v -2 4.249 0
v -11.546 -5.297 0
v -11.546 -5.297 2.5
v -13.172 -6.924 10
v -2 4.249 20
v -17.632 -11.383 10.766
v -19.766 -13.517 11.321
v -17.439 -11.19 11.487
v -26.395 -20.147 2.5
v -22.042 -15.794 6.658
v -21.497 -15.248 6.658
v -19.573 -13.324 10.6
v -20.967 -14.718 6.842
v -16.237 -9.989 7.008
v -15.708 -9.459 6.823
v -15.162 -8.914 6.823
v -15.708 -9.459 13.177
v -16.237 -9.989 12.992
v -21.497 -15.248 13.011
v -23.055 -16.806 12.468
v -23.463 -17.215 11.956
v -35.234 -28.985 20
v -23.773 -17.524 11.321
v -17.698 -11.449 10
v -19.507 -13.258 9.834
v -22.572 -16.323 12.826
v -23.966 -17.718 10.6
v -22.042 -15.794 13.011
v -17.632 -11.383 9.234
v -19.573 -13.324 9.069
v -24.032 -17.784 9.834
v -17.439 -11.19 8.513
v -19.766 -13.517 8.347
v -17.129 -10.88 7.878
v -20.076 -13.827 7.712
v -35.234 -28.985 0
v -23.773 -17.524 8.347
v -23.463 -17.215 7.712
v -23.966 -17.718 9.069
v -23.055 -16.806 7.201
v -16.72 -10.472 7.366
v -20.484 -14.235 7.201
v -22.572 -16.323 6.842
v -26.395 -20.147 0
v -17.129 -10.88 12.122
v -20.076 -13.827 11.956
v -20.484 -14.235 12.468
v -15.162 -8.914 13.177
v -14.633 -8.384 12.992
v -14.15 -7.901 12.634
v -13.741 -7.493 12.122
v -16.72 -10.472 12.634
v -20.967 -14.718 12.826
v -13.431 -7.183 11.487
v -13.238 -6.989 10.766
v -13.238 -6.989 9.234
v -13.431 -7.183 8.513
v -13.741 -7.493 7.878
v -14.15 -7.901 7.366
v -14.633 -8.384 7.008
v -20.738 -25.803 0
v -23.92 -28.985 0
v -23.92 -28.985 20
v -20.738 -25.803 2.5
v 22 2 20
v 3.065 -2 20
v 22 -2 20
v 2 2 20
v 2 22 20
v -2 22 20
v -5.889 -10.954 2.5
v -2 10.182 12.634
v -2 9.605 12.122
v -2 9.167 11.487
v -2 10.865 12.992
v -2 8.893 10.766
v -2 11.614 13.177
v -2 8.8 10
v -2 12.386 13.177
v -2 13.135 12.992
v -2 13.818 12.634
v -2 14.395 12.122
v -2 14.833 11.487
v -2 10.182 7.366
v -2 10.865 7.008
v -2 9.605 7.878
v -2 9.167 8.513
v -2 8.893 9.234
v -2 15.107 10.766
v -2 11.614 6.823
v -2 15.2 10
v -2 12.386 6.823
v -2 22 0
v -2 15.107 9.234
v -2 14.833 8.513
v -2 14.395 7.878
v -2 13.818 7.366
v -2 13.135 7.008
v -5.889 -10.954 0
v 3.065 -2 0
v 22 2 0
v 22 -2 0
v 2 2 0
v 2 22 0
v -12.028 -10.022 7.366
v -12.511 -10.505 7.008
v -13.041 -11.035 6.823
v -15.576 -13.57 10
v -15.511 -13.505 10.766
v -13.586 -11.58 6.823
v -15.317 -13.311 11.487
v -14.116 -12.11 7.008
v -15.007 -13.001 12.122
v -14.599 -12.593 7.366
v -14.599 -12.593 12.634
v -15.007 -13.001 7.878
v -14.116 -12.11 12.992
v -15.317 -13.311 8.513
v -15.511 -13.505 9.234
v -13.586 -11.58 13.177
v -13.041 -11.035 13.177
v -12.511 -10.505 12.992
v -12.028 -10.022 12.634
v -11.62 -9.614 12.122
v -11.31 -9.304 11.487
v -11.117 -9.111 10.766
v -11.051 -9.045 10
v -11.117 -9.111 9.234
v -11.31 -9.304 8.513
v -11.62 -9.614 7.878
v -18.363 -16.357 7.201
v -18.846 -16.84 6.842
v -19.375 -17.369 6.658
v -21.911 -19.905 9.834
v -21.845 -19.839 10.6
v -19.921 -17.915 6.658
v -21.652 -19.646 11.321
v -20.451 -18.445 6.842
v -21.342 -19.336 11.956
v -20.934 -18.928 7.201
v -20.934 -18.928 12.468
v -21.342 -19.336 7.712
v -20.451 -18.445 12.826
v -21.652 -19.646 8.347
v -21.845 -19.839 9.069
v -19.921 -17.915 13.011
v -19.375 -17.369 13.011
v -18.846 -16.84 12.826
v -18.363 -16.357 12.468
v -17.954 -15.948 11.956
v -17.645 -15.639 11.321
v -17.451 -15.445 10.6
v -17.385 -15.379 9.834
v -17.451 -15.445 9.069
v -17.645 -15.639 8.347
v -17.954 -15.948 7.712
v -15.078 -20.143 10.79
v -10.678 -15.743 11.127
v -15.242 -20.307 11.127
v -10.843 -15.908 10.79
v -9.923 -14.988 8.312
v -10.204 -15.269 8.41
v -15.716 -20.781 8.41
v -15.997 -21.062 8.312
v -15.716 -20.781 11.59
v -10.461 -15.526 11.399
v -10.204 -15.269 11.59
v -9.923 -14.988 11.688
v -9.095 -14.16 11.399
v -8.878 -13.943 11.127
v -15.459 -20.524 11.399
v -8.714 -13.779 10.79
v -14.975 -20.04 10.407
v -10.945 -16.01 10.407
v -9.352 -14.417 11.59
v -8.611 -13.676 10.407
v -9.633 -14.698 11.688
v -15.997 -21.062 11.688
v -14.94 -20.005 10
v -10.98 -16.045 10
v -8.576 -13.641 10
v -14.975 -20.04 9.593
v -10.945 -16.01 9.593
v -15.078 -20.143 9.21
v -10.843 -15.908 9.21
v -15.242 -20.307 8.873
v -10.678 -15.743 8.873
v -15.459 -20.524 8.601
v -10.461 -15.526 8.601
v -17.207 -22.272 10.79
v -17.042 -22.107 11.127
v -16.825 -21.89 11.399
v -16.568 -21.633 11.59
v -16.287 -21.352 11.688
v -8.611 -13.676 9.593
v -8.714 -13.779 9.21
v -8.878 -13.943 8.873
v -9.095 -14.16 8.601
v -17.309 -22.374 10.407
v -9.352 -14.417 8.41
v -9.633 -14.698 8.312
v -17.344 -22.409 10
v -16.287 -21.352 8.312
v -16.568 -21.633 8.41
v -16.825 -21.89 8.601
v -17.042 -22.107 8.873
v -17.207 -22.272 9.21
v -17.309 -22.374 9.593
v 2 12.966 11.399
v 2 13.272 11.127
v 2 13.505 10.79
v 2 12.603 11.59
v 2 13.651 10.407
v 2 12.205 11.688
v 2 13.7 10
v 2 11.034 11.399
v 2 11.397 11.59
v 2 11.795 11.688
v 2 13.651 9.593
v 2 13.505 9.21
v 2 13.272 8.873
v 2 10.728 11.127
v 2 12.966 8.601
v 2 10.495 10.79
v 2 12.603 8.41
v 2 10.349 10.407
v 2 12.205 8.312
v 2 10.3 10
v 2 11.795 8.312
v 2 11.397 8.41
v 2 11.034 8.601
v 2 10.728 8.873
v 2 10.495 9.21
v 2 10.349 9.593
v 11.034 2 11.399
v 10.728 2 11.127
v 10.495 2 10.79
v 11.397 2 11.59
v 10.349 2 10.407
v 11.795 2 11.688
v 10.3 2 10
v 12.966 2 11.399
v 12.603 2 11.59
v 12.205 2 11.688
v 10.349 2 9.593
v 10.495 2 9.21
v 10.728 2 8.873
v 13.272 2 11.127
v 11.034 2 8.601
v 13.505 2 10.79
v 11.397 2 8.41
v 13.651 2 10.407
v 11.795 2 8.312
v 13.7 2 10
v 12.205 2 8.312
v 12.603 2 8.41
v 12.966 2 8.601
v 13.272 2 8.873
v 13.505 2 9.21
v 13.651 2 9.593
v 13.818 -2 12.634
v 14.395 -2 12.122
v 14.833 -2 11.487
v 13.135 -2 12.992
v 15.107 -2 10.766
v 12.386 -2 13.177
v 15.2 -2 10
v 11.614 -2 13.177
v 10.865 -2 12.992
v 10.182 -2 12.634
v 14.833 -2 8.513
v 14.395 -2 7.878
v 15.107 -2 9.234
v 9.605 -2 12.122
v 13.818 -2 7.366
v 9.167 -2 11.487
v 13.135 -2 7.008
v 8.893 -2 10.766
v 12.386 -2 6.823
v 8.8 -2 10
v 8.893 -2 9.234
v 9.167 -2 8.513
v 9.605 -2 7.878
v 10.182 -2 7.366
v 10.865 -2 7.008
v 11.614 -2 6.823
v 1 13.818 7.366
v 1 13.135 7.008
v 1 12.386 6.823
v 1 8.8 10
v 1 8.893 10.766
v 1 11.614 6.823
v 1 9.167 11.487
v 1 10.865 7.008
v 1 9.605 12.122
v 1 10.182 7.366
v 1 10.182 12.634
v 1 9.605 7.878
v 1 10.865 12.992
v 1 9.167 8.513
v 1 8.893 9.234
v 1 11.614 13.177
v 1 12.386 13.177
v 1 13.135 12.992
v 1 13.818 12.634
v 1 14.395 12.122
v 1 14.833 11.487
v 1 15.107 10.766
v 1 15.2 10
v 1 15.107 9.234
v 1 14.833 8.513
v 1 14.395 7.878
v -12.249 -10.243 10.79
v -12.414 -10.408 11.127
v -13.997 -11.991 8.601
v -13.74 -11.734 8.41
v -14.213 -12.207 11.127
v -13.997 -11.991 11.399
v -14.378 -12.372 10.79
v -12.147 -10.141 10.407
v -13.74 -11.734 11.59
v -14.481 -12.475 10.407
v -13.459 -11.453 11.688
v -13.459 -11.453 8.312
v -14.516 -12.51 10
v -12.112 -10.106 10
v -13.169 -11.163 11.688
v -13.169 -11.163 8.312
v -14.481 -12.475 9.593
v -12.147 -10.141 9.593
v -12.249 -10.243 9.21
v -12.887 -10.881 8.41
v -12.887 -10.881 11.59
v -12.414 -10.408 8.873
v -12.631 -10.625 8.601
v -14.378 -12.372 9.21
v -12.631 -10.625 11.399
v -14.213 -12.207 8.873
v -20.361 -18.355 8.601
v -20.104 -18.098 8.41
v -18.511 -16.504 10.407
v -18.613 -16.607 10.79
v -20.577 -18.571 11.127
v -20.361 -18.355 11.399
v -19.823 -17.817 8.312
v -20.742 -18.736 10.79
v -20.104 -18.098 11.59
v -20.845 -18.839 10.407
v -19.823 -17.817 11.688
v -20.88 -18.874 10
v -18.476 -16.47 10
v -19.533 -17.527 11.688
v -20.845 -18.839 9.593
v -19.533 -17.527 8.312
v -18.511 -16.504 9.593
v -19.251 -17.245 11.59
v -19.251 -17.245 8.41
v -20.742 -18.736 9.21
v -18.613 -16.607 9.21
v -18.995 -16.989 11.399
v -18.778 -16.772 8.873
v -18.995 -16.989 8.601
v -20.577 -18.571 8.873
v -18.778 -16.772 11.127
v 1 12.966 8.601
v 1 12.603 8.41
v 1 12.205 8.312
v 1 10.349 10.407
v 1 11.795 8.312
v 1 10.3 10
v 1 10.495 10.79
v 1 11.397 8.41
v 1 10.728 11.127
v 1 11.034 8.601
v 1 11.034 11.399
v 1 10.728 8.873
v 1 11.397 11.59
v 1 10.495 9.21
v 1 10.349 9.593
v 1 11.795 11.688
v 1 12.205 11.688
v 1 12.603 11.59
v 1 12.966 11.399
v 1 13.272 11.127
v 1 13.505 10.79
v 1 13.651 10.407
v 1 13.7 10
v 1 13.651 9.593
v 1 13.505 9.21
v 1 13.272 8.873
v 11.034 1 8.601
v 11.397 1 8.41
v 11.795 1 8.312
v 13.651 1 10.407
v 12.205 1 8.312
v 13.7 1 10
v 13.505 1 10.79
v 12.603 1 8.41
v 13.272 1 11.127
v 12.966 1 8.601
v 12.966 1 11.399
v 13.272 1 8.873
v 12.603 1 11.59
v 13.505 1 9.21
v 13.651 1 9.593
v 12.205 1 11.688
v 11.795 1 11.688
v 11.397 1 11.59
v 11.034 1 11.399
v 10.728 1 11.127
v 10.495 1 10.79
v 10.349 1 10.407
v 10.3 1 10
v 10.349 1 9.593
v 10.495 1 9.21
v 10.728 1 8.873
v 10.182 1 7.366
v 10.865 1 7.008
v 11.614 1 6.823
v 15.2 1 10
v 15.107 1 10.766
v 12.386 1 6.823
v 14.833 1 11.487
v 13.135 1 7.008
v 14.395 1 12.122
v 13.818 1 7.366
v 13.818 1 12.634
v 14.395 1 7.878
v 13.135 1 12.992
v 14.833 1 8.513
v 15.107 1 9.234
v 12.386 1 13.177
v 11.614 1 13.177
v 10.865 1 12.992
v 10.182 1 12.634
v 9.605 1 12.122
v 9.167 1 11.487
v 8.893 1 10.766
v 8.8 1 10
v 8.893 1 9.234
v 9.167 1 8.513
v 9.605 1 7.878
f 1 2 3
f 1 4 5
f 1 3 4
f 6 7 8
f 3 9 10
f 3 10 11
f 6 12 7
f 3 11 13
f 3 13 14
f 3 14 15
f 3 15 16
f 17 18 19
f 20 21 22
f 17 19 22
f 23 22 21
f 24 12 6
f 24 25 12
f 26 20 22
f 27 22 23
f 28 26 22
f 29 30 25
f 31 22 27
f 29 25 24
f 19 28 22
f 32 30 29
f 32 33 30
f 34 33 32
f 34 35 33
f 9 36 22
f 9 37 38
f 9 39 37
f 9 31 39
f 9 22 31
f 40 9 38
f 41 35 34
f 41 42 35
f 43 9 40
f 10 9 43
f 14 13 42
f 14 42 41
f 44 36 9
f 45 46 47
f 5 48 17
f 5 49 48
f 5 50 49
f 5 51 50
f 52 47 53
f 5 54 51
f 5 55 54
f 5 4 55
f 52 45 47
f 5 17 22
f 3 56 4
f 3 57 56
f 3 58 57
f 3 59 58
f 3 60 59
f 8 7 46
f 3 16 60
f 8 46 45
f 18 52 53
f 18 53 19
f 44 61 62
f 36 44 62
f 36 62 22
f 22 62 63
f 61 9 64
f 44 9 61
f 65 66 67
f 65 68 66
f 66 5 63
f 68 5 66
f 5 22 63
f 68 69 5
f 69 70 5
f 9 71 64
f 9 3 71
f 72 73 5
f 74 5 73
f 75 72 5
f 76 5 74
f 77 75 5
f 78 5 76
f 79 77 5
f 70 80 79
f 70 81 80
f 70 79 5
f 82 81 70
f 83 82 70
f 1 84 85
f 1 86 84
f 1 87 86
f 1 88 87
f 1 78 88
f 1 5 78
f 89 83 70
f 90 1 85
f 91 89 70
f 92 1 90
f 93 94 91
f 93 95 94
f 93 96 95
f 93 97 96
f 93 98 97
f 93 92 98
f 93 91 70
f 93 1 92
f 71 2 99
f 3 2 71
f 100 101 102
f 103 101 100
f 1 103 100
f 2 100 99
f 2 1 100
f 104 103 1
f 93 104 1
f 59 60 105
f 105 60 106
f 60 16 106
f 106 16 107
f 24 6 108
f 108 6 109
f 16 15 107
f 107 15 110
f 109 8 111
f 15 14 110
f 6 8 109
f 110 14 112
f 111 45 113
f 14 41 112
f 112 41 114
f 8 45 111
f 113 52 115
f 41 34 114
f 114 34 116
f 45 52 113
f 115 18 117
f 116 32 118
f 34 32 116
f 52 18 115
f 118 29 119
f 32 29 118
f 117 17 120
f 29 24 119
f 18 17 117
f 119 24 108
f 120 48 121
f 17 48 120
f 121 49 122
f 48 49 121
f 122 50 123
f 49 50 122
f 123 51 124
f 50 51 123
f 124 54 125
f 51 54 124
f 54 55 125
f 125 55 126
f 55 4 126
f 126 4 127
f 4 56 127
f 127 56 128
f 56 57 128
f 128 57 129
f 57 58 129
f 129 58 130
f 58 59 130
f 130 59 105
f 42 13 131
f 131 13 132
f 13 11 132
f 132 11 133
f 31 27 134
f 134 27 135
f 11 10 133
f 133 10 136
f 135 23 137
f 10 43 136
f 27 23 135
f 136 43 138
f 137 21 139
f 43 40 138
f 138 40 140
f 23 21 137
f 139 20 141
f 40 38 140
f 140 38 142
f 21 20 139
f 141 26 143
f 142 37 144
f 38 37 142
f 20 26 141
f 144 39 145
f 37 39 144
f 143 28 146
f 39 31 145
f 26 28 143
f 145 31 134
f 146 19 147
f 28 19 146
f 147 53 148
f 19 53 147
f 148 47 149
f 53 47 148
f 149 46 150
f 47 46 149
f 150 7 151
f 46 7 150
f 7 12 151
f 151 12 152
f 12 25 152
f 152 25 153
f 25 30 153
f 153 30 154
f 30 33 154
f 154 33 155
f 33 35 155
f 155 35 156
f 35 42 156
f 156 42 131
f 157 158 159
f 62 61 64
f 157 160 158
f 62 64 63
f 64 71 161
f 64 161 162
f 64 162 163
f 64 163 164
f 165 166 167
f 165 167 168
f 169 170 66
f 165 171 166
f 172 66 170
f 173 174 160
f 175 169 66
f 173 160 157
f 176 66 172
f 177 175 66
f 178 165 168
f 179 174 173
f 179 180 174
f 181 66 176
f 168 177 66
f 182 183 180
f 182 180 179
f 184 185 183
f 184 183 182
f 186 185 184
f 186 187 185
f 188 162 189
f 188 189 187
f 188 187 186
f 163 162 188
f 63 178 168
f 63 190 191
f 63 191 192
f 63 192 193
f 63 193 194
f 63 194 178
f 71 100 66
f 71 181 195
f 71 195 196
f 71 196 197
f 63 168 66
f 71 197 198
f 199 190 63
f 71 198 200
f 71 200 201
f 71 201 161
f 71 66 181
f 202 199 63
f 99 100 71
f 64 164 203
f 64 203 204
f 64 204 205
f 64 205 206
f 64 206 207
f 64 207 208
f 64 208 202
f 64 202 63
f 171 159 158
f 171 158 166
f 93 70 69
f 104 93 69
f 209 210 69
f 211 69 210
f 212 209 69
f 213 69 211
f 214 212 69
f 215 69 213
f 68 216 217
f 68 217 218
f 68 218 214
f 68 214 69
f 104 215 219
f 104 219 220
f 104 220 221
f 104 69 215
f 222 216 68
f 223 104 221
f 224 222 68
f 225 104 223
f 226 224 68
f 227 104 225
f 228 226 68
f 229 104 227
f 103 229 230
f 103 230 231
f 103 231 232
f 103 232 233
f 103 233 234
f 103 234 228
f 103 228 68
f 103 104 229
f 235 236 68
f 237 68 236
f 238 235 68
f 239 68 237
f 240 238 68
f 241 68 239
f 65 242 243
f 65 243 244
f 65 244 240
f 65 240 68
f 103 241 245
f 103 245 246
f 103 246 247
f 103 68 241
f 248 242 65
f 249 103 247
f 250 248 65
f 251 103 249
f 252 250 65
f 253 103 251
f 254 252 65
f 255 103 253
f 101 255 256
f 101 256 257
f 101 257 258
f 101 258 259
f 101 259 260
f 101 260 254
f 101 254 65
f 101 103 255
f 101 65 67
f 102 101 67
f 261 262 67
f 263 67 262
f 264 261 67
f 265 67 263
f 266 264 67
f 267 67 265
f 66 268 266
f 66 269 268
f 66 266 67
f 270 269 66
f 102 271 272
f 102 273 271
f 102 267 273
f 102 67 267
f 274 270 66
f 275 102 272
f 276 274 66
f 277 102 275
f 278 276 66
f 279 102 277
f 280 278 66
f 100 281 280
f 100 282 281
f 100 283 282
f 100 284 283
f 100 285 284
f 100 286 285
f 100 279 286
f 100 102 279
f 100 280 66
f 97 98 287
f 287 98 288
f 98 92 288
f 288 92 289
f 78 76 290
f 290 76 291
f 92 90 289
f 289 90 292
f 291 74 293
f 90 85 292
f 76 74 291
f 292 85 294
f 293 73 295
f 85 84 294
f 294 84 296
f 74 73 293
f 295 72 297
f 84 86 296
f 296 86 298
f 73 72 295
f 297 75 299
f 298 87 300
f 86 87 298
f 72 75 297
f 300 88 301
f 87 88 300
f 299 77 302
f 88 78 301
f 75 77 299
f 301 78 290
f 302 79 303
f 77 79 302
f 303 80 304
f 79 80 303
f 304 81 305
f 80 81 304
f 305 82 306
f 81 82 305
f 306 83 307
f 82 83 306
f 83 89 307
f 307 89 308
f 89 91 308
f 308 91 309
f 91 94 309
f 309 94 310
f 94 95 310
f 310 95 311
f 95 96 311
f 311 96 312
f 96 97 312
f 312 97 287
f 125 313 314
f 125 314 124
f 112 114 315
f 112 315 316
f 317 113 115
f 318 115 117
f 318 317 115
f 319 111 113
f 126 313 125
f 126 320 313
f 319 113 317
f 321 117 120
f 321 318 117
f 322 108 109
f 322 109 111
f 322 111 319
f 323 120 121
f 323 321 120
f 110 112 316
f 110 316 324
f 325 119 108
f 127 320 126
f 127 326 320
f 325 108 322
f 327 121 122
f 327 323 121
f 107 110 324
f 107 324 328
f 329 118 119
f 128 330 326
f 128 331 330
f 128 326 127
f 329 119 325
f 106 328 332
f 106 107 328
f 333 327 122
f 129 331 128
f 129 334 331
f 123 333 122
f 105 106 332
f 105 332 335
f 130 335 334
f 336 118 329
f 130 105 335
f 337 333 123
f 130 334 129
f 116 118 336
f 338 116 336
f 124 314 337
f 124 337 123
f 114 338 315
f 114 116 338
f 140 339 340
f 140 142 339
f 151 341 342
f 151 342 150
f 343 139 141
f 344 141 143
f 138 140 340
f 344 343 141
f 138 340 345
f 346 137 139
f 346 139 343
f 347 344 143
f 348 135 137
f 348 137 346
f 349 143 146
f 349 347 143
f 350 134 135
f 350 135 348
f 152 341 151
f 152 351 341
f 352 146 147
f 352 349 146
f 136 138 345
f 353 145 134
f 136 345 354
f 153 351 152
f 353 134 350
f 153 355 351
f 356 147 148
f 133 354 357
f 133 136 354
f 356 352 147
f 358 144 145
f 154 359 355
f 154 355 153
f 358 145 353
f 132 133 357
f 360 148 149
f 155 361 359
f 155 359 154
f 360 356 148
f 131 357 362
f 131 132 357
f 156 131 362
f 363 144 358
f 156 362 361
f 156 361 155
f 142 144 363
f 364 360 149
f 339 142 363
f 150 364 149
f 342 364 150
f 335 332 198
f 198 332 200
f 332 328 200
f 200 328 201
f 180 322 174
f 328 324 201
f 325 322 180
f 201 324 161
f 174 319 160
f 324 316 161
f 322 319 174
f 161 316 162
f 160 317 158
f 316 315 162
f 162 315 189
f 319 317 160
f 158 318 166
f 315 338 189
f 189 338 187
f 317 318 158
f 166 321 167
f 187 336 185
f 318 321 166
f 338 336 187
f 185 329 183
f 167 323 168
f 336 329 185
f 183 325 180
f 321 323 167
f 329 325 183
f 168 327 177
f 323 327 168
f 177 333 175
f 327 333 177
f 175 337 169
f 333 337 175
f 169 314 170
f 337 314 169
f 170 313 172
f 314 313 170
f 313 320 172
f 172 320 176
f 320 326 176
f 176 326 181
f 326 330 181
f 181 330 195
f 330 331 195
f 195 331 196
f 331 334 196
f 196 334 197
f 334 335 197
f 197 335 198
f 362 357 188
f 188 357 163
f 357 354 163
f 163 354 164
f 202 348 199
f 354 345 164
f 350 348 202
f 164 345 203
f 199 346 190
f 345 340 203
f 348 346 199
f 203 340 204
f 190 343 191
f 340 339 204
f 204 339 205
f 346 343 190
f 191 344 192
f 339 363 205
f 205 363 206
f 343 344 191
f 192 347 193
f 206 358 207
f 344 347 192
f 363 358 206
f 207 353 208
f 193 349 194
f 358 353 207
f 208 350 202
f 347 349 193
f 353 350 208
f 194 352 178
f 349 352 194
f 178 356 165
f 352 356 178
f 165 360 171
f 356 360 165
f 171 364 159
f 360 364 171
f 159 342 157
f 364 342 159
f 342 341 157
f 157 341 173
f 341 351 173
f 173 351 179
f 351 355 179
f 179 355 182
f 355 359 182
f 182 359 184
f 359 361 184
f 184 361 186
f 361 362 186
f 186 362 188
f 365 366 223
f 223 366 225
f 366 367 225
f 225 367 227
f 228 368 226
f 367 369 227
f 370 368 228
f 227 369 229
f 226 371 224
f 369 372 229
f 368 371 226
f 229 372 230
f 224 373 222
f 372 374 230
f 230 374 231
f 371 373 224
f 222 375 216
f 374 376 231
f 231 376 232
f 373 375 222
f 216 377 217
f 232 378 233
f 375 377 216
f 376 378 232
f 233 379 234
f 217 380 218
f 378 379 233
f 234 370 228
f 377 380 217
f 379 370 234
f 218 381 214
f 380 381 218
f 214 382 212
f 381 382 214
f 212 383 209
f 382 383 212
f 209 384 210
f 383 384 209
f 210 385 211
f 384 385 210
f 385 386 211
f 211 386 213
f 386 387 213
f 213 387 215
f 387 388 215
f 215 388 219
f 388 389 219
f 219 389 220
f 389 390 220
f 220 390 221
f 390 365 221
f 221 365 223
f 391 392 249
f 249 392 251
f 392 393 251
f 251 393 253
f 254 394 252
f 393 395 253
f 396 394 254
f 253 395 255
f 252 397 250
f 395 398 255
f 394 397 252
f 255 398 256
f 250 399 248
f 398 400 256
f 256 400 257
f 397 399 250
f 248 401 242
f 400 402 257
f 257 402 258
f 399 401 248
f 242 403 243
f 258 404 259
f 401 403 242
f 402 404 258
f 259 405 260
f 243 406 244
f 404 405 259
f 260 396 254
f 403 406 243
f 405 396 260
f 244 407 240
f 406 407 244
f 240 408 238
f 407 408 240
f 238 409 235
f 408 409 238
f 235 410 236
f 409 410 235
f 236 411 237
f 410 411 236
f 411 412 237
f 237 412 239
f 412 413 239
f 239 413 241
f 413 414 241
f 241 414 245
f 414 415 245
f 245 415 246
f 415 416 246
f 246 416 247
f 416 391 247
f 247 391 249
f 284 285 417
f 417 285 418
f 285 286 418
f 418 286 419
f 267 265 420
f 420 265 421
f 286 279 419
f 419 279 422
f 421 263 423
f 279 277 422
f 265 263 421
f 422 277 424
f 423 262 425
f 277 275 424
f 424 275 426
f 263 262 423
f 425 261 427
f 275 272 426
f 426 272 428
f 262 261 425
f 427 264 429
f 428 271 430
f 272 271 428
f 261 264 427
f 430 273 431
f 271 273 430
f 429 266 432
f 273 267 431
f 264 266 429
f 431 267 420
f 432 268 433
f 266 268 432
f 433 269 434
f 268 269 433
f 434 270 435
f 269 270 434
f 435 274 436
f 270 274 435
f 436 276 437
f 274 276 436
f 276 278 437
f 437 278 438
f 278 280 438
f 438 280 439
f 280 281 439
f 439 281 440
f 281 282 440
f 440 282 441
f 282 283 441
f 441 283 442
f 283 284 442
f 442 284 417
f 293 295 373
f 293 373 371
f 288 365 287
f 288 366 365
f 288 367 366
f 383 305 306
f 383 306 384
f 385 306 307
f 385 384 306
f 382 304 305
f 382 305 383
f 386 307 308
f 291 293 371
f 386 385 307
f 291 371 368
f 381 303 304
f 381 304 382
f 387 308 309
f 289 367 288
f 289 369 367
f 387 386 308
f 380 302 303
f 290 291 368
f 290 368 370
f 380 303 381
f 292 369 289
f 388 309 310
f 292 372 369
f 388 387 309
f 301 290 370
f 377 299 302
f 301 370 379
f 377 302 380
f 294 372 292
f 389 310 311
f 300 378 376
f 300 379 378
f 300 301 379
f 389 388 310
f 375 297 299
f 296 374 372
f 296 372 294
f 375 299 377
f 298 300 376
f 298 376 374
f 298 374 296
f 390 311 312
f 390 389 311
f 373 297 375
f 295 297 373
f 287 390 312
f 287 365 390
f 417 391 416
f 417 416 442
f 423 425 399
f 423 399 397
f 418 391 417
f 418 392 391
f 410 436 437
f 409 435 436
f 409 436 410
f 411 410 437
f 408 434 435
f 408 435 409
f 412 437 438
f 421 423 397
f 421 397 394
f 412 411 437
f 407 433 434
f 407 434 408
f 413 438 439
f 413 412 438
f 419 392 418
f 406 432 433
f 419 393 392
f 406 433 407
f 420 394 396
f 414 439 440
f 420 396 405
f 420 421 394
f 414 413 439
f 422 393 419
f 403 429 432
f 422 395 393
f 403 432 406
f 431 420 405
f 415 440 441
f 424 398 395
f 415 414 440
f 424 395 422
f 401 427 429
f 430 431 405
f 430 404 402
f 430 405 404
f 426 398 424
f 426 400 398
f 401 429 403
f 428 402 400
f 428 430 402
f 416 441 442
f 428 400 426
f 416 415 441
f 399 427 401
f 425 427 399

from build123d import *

# Parameters (mm, degrees)
PAD_DEPTH       = 20
SKETCH001_R     = 1.7
POCKET_DEPTH    = 5
SKETCH002_R     = 1.7
POCKET001_DEPTH = 5
SKETCH003_R     = 1.7
SKETCH003_W     = 21
SKETCH003_H     = 2.5
POCKET002_DEPTH = 9
SKETCH004_R     = 3.2
POCKET003_DEPTH = 3
SKETCH005_R     = 3.2
POCKET004_DEPTH = 3
SKETCH006_R     = 3.2
POCKET005_DEPTH = 3


with BuildPart() as part:
    # Sketch → Pad (new body)
    with BuildSketch(Plane.XY):
        Polygon((-2, 22), (2, 22), (2, 2), (22, 2), (22, -2), (3.065041, -2), (-23.92031, -28.985351), (-35.234019, -28.985351), (-2, 4.248668), align=None)
    extrude(amount=PAD_DEPTH)

    # Sketch001 (on Face2 of Pad) → Pocket (cut)
    with BuildSketch(Plane(origin=(-2, 0, 0), x_dir=(0, -1, 0), z_dir=(-1, 0, 0))):
        with Locations((-12, 10)):
            Circle(SKETCH001_R)
    extrude(amount=-POCKET_DEPTH, mode=Mode.SUBTRACT)

    # Sketch002 (on Face12 of Pocket) → Pocket001 (cut)
    with BuildSketch(Plane.XZ.offset(2)):
        with Locations((12, 10)):
            Circle(SKETCH002_R)
    extrude(amount=-POCKET001_DEPTH, mode=Mode.SUBTRACT)

    # Sketch003 (on Face1 of Pocket001) → Pocket002 (cut)
    with BuildSketch(Plane(origin=(-3.124334, 3.124334, 0), x_dir=(-0.707107, -0.707107, 0), z_dir=(-0.707107, 0.707107, 0))):
        with Locations((17.409952, 10)):
            Circle(SKETCH003_R)
        with Locations((26.409952, 10)):
            Circle(SKETCH003_R)
        with Locations((22.409952, 1.25)):
            Rectangle(SKETCH003_W, SKETCH003_H)
    extrude(amount=-POCKET002_DEPTH, mode=Mode.SUBTRACT)

    # Sketch004 (on Face7 of Pocket002) → Pocket003 (cut)
    with BuildSketch(Plane(origin=(-2, 0, 0), x_dir=(0, -1, 0), z_dir=(-1, 0, 0))):
        with Locations((-12, 10)):
            Circle(SKETCH004_R)
    extrude(amount=-POCKET003_DEPTH, mode=Mode.SUBTRACT)

    # Sketch005 (on Face13 of Pocket003) → Pocket004 (cut)
    with BuildSketch(Plane.XZ.offset(2)):
        with Locations((12, 10)):
            Circle(SKETCH005_R)
    extrude(amount=-POCKET004_DEPTH, mode=Mode.SUBTRACT)

    # Sketch006 (on Face1 of Pocket004) → Pocket005 (cut)
    with BuildSketch(Plane(origin=(-3.124334, 3.124334, 0), x_dir=(-0.707107, -0.707107, 0), z_dir=(-0.707107, 0.707107, 0))):
        with Locations((17.409955, 10.000001)):
            Circle(SKETCH006_R)
        with Locations((26.368249, 9.834363)):
            Circle(SKETCH006_R)
    extrude(amount=-POCKET005_DEPTH, mode=Mode.SUBTRACT)


solid = part.part
